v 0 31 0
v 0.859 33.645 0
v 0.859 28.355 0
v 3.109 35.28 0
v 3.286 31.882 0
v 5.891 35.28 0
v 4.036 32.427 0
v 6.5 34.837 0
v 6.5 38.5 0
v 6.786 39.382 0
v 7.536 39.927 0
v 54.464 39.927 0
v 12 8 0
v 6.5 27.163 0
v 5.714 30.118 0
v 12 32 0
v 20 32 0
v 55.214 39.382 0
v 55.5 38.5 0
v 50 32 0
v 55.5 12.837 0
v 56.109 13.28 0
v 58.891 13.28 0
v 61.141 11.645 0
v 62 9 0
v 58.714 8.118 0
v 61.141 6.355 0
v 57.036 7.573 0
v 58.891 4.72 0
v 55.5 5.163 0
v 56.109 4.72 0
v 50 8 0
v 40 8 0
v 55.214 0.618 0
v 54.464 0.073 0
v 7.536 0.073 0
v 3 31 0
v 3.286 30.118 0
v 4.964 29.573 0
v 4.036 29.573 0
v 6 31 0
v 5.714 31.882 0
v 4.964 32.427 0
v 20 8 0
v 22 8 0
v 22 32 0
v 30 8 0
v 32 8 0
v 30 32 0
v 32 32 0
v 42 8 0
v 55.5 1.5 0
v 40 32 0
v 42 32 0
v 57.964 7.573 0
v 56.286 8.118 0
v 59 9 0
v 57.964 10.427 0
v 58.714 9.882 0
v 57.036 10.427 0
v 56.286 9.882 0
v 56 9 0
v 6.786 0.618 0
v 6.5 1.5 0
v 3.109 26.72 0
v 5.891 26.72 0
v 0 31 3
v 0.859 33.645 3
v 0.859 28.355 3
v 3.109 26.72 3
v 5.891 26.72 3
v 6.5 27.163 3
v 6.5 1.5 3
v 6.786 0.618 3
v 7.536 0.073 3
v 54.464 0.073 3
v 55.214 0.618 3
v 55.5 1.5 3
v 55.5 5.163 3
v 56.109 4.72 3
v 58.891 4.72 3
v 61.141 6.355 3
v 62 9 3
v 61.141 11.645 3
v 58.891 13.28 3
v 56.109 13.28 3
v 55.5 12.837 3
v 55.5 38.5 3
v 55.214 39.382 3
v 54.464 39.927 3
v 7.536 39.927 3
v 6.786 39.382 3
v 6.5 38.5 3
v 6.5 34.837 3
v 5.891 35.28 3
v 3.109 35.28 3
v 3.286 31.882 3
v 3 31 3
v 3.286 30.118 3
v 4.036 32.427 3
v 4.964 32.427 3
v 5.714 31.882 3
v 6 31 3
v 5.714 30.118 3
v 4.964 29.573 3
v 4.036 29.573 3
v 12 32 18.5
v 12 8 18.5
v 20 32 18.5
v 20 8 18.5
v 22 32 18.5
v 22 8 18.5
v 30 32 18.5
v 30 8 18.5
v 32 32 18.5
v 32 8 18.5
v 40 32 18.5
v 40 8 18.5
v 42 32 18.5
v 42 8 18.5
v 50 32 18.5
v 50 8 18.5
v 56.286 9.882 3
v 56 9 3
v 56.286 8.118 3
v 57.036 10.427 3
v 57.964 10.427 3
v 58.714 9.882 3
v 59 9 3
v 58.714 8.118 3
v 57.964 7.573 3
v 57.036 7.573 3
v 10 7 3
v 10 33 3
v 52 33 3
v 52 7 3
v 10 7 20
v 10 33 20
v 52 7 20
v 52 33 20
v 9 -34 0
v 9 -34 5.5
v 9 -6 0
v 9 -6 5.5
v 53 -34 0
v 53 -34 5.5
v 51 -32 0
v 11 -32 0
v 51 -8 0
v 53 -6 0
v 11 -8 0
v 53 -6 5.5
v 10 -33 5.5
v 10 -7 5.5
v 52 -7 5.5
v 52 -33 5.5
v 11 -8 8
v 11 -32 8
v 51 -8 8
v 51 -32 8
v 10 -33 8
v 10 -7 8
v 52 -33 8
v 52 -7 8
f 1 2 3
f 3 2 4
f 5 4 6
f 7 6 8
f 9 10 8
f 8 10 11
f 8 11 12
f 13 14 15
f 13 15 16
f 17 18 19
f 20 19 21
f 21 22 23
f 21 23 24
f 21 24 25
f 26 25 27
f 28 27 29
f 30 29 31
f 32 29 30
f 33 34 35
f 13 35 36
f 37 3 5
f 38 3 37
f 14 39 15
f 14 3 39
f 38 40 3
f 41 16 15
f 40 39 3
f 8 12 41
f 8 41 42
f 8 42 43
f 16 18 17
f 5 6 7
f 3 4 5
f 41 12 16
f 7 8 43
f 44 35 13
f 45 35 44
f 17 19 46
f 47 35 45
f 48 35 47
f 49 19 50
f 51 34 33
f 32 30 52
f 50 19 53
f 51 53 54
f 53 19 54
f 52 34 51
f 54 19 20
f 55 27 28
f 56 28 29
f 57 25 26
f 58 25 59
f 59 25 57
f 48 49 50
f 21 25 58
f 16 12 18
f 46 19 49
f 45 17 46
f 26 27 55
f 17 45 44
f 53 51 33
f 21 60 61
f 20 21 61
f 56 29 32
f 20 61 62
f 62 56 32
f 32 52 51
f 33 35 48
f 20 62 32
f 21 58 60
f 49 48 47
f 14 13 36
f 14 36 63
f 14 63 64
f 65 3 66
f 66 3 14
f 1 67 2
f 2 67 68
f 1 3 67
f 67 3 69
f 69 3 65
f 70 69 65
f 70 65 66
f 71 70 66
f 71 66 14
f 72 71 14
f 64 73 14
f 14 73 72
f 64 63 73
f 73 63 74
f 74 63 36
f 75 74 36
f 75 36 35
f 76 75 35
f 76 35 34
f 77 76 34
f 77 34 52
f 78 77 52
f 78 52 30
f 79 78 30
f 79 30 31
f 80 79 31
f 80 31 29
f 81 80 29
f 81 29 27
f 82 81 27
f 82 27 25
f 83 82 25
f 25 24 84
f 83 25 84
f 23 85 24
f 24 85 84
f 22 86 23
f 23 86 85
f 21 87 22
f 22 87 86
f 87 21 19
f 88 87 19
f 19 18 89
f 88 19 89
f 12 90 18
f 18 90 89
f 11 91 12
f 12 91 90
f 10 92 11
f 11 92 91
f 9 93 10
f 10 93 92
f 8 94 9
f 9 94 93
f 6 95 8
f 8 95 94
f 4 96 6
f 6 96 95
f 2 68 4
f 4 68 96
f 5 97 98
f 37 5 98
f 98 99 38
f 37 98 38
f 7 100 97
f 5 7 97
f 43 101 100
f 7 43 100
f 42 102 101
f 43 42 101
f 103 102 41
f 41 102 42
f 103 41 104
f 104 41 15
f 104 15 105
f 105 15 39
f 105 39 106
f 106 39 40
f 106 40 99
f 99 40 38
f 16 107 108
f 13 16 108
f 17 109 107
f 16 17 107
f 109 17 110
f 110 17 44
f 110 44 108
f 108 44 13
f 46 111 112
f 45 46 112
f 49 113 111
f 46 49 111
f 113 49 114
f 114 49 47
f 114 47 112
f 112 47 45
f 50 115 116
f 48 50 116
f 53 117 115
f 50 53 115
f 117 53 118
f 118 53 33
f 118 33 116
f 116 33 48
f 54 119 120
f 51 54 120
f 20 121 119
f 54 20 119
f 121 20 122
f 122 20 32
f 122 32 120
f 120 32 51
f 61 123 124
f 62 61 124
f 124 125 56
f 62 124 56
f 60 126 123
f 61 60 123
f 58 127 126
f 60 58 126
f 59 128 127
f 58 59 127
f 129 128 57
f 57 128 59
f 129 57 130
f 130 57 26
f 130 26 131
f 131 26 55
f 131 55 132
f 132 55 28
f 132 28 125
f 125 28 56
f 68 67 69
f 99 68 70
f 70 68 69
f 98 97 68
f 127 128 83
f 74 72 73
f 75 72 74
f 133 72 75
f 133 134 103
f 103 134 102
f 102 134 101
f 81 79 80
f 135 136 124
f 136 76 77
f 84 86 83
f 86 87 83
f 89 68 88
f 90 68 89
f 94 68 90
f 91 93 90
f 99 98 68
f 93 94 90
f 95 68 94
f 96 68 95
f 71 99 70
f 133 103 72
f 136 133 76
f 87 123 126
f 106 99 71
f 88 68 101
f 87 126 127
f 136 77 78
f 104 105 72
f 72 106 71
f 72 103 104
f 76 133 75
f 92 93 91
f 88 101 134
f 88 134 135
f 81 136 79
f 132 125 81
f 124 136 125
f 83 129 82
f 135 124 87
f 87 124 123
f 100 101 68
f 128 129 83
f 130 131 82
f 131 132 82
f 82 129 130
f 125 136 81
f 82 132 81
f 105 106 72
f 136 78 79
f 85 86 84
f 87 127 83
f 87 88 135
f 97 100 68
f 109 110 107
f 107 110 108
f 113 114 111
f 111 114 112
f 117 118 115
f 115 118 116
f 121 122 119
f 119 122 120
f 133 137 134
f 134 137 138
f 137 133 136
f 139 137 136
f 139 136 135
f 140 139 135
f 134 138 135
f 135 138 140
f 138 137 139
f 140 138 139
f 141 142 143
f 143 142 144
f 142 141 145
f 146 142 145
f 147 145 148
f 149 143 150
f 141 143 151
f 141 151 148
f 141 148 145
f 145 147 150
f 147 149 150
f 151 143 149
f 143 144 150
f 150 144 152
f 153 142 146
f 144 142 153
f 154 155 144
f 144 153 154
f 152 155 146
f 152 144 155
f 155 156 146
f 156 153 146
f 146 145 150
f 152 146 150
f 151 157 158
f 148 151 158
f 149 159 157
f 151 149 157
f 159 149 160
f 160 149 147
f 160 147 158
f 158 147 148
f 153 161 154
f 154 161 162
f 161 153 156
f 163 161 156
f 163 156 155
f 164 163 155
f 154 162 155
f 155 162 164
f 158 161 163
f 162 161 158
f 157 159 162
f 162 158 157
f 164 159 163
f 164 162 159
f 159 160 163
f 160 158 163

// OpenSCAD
$fn=10;



base();

module base() {
	width=62;
	height=40;
	depth=20;
	inner_width=42;
	inner_height=26;
	cap_depth=8;


	difference() {
		union() {
			body();
			screw_holes();

		}
		slots();
	}

	translate([0,0,8])
	rotate([180,0,0])
	cap();

	module body() {
		hull() {
			translate([3/2+6.5,3/2,0])
			cylinder(h=3, d=3);

			translate([3/2+6.5,height-3/2,0])
			cylinder(h=3, d=3);

			translate([width-3/2-6.5,3/2,0])
			cylinder(h=3, d=3);

			translate([width-3/2-6.5,height-3/2,0])
			cylinder(h=3, d=3);
		}

		translate([(width-inner_width)/2,(height-inner_height)/2,0])
		cube([inner_width,inner_height,depth]);
	}

	module cap() {
		translate([(width-inner_width)/2,(height-inner_height)/2,0])
		difference() {
			union() {
				cube([inner_width,inner_height,cap_depth]);
				translate([-1,-1,+2.5])
				cube([inner_width+2,inner_height+2,cap_depth-2.5]);
			}
			translate([1,1,-0.5])
			cube([inner_width-2,inner_height-2,cap_depth+1]);
		}
	}

	module screw_holes() {
		translate([3+3/2,height-9,0])
		screw_hole();

		translate([width-3-3/2,9,0])
		screw_hole();

		module screw_hole() {
			difference() {
				cylinder(h=3, d=9);
				translate([0,0,-0.5])
				cylinder(h=4, d=3);
			}
		}
	}



	module slots() {
		for (i = [2:10:32]) {
			translate([(width-42)/2+i,(height-24)/2,0])
			slot();
		}

		module slot() {
			translate([0,0,-0.5])
			cube([8,26-2,depth-1]);
		}
	}
}
